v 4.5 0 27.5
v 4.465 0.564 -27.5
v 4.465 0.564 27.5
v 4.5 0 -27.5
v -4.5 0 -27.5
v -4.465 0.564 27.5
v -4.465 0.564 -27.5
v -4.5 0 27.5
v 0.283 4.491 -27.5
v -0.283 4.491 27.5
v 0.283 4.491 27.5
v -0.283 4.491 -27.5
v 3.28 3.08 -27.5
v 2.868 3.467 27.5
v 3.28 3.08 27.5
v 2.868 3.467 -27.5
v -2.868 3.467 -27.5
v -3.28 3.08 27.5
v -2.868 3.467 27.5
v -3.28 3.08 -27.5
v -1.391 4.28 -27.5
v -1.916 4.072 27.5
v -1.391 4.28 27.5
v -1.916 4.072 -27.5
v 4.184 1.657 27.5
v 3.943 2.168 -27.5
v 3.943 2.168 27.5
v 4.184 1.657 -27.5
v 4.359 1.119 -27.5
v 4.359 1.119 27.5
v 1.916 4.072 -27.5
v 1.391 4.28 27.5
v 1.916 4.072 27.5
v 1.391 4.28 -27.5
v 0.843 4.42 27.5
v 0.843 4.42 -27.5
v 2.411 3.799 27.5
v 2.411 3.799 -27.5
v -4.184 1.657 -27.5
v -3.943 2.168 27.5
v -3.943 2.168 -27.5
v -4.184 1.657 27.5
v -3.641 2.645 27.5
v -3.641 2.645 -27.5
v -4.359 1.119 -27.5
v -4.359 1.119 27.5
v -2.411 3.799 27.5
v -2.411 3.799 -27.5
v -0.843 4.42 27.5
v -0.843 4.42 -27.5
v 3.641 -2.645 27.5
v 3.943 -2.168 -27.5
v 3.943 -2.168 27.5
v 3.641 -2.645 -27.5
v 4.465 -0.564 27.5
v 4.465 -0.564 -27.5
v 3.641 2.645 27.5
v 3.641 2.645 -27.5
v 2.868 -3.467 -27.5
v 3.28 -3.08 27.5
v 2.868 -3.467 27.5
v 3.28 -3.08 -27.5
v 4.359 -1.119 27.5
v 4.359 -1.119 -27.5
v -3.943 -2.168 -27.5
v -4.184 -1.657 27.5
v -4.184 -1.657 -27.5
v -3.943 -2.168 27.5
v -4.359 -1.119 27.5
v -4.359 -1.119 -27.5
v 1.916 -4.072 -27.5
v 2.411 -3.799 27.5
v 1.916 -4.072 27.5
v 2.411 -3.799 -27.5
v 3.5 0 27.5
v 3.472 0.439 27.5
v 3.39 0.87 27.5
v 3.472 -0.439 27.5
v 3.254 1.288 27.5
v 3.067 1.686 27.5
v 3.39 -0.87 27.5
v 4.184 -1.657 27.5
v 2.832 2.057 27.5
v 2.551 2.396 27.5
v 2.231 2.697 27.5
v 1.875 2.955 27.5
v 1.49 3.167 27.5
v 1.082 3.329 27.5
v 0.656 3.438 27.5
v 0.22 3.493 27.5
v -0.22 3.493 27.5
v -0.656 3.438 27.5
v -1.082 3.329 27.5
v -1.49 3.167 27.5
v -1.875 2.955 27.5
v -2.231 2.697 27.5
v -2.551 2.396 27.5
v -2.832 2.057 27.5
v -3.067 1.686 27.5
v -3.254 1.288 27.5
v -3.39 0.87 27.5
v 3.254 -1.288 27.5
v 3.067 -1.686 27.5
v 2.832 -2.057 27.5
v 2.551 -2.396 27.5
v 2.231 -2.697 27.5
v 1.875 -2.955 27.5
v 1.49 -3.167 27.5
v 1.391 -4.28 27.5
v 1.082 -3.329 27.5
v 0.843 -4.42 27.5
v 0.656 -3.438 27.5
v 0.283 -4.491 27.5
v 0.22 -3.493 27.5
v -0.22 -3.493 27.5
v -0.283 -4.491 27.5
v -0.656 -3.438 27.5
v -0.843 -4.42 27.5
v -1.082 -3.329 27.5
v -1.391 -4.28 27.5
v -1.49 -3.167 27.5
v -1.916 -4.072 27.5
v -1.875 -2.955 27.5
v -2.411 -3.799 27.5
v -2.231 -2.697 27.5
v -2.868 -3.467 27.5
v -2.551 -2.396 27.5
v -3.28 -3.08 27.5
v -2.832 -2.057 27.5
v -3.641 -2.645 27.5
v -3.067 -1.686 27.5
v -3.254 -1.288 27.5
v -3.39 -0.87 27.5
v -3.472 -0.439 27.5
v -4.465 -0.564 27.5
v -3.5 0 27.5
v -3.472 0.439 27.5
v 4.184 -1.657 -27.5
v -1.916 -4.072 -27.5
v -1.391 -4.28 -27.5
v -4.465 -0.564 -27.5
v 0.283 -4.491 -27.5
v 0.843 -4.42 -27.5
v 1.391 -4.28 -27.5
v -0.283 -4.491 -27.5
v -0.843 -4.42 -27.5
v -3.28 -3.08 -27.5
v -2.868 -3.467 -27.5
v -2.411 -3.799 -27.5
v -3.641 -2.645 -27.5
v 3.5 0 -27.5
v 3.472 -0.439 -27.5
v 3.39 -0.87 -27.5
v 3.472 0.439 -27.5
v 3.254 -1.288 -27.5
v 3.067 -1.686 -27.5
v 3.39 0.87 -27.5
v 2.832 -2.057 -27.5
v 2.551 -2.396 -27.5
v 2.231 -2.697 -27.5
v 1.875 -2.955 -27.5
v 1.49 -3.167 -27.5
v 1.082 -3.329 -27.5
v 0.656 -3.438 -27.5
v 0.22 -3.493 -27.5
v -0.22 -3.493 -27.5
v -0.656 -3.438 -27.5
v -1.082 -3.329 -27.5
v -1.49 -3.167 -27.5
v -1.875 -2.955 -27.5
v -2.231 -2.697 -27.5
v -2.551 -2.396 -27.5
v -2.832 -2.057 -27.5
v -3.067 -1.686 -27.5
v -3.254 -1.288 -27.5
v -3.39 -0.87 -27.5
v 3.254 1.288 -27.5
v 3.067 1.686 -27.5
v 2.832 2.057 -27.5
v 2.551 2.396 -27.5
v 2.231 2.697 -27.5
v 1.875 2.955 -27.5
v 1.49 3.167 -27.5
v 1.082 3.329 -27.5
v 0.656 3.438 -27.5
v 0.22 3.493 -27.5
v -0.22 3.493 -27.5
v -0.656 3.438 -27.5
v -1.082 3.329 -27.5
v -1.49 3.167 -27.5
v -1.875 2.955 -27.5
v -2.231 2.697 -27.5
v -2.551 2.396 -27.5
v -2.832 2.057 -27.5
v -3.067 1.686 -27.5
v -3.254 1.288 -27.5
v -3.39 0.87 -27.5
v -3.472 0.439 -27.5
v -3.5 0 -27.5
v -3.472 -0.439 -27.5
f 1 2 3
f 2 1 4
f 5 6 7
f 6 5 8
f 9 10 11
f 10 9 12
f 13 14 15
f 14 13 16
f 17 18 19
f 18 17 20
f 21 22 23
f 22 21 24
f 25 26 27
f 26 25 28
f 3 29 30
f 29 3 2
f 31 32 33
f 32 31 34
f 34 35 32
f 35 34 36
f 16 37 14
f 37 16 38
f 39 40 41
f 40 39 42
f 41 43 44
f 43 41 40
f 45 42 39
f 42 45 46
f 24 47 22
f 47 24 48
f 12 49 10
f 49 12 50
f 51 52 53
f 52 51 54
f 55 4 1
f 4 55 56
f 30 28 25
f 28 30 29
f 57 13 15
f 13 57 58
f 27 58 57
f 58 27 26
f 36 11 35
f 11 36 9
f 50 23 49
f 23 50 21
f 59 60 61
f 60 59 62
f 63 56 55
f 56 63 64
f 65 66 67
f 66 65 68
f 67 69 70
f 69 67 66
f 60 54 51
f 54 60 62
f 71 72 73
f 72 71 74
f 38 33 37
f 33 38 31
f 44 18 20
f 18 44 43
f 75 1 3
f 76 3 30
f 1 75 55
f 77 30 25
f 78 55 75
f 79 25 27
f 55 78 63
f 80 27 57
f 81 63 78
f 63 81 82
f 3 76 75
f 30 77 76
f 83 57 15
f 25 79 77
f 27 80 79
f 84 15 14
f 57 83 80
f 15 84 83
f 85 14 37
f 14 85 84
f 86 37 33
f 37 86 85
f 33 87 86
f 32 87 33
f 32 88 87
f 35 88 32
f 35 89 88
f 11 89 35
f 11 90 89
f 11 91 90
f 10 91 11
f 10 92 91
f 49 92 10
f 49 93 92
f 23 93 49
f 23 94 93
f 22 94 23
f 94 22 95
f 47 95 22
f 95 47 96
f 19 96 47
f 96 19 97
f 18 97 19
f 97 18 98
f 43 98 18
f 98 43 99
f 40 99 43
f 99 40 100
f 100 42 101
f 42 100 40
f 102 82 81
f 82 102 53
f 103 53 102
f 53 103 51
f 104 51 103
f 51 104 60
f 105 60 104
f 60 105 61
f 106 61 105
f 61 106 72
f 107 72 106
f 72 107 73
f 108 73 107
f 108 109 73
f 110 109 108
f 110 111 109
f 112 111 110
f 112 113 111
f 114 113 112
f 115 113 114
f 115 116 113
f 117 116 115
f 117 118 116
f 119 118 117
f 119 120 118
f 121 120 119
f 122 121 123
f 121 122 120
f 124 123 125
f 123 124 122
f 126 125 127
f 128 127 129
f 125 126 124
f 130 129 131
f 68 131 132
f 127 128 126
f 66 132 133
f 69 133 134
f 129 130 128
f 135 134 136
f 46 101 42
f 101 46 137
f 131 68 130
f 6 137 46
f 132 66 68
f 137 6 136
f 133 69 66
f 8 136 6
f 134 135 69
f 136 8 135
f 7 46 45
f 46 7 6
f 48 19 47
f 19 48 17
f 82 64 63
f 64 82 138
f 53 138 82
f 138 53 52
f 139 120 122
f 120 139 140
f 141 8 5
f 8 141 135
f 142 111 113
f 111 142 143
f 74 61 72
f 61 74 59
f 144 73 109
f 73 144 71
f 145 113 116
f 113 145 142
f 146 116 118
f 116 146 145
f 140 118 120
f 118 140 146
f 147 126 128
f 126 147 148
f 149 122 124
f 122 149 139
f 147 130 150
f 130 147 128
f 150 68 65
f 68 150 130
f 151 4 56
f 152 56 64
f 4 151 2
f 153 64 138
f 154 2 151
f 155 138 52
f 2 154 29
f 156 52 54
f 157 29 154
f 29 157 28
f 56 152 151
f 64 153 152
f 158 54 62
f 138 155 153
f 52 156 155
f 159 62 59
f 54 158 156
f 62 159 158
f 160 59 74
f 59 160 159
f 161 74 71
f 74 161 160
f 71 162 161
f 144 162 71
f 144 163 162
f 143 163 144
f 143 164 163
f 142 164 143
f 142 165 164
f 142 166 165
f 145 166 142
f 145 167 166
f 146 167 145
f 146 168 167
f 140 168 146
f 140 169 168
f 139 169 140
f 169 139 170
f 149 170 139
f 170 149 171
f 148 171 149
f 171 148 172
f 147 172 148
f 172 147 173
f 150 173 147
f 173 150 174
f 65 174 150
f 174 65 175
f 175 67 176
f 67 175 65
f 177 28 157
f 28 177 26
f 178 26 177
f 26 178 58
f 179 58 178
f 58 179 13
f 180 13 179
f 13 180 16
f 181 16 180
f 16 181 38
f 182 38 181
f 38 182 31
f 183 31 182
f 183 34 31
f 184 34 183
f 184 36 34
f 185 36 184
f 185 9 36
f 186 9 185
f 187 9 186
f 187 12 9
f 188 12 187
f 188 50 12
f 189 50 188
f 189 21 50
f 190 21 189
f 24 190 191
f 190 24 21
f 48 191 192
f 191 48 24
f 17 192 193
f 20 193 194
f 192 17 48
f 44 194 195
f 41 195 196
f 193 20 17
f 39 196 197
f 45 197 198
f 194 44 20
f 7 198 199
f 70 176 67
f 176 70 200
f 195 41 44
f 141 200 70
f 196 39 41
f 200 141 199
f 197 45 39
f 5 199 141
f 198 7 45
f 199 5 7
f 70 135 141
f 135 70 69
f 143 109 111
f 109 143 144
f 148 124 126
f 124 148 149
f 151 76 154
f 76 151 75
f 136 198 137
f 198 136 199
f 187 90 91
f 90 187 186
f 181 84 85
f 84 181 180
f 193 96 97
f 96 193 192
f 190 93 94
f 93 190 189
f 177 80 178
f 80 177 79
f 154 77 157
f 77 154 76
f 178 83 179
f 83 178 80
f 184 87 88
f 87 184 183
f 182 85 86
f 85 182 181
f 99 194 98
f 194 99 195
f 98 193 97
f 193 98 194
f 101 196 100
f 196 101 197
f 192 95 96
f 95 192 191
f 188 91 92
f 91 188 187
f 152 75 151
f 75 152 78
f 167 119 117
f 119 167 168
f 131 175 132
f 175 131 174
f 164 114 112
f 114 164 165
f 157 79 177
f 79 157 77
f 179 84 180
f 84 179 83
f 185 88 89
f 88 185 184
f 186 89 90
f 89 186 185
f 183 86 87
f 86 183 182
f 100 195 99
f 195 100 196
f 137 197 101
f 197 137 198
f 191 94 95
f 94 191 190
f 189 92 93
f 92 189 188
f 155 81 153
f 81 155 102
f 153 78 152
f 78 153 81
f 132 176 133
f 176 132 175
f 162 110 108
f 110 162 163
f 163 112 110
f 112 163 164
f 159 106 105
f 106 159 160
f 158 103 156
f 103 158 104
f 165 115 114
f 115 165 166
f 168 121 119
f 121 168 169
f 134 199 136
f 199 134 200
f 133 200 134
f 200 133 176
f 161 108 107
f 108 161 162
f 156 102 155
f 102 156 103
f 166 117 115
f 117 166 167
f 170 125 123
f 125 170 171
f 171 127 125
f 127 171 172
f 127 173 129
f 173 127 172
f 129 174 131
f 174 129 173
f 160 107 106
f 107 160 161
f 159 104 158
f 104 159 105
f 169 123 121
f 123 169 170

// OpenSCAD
$fn = 50;


difference() {
	union() {
		translate(v = [0, 0, -27.5000000000]) {
			cylinder(h = 55, r = 4.5000000000);
		}
	}
	union() {
		translate(v = [0, 0, -100.0000000000]) {
			cylinder(h = 200, r = 3.5000000000);
		}
	}
}
